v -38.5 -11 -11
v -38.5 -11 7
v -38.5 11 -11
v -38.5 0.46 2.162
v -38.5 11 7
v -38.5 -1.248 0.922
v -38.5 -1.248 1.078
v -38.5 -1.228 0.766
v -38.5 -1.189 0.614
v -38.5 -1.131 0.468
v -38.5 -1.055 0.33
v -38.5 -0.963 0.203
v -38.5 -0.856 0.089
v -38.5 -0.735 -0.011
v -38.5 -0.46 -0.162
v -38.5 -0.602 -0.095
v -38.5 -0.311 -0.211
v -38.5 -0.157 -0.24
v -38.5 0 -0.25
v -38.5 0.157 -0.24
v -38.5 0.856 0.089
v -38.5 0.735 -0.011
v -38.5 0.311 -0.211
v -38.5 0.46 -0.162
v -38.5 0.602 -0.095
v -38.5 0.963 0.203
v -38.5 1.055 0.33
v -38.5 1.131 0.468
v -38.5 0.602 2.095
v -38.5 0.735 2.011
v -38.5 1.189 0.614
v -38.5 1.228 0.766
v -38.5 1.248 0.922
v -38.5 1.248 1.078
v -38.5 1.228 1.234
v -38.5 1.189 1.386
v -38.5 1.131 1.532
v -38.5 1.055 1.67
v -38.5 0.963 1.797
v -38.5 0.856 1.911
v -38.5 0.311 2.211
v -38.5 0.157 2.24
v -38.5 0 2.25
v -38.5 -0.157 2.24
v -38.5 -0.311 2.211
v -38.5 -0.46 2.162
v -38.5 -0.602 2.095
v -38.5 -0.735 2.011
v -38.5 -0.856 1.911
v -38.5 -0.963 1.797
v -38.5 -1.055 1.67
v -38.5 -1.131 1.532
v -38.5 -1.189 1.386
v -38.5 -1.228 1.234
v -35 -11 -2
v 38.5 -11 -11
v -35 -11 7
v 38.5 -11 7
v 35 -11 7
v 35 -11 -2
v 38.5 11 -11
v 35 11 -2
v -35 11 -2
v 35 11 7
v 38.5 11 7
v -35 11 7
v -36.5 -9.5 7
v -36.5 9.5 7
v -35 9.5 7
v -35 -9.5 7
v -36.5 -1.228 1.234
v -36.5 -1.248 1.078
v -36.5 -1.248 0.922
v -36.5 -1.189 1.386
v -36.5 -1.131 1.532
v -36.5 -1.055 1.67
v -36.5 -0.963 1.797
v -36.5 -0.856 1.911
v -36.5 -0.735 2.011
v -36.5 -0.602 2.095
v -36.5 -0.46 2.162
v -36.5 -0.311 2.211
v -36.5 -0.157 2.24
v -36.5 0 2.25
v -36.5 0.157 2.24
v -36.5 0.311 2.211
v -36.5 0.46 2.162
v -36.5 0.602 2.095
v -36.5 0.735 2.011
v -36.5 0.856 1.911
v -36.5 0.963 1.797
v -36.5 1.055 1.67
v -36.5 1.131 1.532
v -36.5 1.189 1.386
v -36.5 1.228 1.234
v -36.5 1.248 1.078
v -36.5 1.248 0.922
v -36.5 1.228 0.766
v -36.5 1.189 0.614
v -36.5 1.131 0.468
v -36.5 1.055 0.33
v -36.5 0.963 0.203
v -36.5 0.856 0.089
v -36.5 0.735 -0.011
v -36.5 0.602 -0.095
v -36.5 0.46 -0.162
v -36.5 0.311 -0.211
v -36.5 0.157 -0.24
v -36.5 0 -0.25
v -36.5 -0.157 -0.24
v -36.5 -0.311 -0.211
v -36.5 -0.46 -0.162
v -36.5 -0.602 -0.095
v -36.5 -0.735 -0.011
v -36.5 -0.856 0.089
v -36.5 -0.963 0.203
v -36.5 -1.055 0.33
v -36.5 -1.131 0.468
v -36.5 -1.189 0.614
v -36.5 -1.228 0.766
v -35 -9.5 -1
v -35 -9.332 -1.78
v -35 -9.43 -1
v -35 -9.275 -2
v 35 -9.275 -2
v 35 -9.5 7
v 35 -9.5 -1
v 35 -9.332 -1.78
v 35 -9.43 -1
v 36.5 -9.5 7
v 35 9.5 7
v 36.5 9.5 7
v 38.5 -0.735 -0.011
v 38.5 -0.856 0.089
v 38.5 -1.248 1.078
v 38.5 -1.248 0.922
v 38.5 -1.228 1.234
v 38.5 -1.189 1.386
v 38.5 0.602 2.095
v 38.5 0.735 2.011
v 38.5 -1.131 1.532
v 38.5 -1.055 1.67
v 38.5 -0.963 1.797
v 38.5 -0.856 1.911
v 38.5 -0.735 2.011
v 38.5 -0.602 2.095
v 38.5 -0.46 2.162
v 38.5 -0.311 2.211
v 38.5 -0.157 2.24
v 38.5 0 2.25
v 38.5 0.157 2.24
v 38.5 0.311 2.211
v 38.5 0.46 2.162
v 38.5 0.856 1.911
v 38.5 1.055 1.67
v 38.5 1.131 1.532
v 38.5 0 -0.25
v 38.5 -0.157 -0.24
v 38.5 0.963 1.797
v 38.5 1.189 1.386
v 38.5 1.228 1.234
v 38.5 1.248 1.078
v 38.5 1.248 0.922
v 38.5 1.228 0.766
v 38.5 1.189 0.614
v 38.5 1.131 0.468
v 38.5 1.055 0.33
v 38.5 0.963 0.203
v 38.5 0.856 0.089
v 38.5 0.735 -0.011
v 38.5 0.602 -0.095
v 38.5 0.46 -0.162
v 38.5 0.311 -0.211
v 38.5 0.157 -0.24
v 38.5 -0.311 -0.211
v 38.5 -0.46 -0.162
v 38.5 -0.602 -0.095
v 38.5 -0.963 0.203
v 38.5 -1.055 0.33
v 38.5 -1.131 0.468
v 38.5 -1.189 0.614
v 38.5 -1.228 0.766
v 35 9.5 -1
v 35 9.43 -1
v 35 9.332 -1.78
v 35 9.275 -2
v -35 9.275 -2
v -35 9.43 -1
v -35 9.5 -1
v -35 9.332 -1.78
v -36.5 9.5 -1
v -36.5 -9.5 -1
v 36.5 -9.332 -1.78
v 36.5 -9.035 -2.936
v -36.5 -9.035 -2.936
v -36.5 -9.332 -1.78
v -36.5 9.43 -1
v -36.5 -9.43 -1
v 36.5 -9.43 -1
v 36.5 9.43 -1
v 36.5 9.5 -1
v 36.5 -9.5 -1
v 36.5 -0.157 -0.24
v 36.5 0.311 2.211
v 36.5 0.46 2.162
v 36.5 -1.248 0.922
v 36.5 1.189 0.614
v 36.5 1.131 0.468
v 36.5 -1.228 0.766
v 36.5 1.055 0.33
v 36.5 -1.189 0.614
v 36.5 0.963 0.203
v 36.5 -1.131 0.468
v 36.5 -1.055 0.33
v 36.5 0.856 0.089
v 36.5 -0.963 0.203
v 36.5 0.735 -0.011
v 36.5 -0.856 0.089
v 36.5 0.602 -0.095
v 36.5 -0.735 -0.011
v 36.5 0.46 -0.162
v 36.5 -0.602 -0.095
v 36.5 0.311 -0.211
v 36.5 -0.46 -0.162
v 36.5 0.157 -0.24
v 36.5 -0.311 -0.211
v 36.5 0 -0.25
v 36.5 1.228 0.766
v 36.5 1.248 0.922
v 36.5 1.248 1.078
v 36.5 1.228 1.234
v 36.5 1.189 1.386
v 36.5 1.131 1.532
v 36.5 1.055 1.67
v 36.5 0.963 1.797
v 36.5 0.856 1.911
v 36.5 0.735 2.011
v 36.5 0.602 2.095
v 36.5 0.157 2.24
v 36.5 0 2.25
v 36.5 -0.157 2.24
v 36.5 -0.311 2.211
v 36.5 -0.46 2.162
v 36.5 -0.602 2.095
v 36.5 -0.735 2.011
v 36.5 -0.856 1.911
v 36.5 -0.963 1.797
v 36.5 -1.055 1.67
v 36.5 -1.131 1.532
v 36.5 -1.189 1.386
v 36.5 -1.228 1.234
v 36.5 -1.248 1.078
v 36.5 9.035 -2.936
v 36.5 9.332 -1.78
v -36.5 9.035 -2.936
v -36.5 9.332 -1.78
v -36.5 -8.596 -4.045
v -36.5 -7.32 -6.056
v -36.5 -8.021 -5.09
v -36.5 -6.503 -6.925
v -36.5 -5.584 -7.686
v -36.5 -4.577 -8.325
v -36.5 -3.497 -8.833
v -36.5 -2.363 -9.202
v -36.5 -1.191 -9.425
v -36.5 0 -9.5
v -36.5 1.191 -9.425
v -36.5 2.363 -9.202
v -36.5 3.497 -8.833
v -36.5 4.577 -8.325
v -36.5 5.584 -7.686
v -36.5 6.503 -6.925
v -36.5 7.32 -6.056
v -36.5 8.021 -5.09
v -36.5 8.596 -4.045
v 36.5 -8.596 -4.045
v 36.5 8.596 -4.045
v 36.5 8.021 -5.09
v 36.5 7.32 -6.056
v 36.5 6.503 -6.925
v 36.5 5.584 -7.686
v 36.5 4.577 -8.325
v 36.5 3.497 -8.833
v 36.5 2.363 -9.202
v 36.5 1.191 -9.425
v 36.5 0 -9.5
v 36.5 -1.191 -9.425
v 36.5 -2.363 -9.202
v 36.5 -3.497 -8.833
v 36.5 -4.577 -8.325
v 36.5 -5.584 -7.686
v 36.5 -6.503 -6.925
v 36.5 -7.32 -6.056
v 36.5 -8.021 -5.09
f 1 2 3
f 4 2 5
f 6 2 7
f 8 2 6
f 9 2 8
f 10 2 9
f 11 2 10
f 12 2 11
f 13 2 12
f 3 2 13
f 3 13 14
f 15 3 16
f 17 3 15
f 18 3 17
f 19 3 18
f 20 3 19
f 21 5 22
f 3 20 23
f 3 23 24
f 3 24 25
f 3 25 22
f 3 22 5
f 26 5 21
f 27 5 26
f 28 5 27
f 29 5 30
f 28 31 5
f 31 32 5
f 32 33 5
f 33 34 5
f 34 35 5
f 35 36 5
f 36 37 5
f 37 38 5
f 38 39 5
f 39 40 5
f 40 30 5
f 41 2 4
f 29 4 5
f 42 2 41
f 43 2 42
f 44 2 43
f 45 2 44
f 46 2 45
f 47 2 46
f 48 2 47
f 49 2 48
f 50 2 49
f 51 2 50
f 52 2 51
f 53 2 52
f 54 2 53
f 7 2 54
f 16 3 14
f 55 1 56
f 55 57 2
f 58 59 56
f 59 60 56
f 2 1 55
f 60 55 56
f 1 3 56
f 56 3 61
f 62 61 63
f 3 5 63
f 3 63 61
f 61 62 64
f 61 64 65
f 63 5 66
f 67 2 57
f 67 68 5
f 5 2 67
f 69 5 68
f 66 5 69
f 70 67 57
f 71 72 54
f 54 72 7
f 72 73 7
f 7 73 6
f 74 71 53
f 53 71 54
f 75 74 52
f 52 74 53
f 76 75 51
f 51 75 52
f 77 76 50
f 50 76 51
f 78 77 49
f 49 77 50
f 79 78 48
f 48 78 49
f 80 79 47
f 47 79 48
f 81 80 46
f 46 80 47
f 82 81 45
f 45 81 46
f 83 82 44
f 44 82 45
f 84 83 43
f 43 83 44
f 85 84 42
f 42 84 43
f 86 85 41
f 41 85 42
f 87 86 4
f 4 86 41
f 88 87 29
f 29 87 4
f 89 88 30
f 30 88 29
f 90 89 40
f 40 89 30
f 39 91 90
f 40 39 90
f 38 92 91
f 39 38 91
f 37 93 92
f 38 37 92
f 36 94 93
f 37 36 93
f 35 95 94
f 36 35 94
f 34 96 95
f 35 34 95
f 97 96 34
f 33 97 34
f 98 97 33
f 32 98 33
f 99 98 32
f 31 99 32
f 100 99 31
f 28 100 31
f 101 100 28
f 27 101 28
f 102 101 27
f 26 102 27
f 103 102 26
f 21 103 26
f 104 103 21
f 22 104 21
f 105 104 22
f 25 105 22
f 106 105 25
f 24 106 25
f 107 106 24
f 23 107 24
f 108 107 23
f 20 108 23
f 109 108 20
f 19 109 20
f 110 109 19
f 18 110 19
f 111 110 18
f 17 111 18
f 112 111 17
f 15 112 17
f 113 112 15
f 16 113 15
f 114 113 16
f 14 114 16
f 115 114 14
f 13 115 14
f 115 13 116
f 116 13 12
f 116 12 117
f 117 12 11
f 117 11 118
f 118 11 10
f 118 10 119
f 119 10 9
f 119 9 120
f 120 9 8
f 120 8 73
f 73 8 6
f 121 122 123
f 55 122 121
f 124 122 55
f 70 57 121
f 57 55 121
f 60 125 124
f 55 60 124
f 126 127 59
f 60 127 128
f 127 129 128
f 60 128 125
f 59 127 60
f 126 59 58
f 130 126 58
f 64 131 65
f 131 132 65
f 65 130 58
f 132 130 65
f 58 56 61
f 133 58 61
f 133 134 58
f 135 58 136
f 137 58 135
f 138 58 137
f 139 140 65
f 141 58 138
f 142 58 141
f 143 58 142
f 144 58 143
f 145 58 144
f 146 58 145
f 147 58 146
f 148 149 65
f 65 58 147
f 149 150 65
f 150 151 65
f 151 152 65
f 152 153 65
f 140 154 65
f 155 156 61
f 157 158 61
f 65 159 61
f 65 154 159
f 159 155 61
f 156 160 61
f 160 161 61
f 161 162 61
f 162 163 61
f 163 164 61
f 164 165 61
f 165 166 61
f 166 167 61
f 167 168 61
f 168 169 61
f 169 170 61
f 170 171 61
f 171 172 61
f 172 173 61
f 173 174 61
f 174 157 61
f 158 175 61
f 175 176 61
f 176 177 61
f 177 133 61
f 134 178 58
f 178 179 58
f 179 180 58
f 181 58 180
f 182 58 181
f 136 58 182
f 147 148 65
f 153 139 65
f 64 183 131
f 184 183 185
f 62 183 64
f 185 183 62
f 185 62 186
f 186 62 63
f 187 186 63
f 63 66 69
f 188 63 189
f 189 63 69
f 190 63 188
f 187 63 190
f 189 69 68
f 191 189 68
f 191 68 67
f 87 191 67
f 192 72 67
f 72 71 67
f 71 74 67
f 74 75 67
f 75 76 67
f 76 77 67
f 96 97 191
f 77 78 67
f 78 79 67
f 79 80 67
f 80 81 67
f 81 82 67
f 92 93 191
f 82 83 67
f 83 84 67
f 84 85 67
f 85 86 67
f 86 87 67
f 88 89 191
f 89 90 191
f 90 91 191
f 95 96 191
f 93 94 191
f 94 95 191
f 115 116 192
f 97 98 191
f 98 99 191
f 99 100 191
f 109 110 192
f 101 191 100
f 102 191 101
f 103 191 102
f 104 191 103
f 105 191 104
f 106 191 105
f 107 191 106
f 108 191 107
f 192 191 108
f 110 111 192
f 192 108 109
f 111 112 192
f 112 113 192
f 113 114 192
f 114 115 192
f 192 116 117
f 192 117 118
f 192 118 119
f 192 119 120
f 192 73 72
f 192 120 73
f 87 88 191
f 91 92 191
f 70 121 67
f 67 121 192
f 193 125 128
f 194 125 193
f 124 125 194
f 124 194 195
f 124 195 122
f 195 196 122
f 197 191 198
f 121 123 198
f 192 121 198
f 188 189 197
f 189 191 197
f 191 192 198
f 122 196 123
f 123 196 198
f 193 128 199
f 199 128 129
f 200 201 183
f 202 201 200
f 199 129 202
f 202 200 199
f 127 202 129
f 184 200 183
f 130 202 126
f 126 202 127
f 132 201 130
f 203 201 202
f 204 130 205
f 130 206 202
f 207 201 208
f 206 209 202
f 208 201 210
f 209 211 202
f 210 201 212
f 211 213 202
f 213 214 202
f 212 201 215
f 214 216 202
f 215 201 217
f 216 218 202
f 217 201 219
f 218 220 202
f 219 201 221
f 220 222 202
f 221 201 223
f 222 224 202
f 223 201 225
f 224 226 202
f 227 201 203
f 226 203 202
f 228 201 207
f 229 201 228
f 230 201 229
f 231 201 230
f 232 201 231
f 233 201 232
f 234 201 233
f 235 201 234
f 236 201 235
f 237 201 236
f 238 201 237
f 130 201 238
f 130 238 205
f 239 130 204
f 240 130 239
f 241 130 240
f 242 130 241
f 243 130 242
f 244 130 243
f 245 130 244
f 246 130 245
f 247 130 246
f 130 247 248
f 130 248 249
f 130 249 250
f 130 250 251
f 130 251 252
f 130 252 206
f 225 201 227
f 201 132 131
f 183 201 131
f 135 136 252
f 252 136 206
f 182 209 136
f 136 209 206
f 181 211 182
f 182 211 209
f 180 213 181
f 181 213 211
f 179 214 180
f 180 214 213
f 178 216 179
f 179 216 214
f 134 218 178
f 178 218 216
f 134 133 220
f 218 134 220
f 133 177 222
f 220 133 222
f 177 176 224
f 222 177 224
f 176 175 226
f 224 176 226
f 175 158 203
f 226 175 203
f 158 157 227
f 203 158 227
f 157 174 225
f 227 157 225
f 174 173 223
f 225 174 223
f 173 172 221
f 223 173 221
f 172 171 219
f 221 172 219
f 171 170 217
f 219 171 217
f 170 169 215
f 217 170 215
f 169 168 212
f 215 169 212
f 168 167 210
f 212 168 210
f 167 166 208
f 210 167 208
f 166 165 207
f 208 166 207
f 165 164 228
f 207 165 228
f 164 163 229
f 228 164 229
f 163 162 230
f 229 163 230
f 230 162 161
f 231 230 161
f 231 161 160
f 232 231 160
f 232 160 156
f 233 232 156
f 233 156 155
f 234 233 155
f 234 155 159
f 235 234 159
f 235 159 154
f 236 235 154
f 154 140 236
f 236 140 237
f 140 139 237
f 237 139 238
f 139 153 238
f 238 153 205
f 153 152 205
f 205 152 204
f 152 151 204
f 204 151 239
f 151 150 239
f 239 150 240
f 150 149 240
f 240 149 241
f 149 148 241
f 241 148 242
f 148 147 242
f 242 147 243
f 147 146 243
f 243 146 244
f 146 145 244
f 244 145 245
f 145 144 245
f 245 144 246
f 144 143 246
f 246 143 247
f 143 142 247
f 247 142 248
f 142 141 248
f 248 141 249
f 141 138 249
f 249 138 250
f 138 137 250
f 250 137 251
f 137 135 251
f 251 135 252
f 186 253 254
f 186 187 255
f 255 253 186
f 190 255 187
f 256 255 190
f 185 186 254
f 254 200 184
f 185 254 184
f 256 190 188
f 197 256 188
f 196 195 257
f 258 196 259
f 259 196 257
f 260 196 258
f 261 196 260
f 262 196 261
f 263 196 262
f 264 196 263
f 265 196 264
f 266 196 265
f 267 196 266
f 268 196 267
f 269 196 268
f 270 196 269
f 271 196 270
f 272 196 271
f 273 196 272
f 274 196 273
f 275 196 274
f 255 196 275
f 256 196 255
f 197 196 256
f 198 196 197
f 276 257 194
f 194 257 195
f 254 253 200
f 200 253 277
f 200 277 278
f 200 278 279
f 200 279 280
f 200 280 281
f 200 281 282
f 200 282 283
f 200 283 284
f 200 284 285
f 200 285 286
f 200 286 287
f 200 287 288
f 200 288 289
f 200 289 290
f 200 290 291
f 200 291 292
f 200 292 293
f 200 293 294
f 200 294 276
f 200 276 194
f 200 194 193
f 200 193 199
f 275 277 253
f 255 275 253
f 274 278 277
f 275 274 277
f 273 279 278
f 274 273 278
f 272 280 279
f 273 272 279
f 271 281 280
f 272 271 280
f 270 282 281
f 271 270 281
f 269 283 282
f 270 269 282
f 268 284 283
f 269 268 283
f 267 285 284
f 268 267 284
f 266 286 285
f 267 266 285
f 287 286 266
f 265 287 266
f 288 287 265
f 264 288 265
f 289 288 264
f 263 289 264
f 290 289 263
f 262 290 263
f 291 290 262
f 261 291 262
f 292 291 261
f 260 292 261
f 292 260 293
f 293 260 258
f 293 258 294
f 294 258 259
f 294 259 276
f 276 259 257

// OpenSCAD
//****************************************************************
//*  Name    : Lithium Battery Holder                            *
//*  Author  : Robert Joseph Korn                                *
//*  Notice  : Copyright (c) 2015 Open Valley Consulting Corp    *
//*          : All Rights Reserved                               *
//*  Date    : 6/7/15                                            *
//*  Version : 1.0                                               *
//*  Notes   :                                                   *
//*          :                                                   *
//****************************************************************

$fn=50;

difference(){
	translate([0,0,-2]) cube([77,22,18],center=true);
	rotate([90,90,90]) cylinder(h=73,d=19,center=true);
	translate([0,0,8]) cube([73,19,18],center=true);
	translate([0,0,4]) cube([70,26,12],center=true);
	rotate([0,90,0]) translate([-1,0,0]) cylinder(h=80, d=2.5, center=true);
}
